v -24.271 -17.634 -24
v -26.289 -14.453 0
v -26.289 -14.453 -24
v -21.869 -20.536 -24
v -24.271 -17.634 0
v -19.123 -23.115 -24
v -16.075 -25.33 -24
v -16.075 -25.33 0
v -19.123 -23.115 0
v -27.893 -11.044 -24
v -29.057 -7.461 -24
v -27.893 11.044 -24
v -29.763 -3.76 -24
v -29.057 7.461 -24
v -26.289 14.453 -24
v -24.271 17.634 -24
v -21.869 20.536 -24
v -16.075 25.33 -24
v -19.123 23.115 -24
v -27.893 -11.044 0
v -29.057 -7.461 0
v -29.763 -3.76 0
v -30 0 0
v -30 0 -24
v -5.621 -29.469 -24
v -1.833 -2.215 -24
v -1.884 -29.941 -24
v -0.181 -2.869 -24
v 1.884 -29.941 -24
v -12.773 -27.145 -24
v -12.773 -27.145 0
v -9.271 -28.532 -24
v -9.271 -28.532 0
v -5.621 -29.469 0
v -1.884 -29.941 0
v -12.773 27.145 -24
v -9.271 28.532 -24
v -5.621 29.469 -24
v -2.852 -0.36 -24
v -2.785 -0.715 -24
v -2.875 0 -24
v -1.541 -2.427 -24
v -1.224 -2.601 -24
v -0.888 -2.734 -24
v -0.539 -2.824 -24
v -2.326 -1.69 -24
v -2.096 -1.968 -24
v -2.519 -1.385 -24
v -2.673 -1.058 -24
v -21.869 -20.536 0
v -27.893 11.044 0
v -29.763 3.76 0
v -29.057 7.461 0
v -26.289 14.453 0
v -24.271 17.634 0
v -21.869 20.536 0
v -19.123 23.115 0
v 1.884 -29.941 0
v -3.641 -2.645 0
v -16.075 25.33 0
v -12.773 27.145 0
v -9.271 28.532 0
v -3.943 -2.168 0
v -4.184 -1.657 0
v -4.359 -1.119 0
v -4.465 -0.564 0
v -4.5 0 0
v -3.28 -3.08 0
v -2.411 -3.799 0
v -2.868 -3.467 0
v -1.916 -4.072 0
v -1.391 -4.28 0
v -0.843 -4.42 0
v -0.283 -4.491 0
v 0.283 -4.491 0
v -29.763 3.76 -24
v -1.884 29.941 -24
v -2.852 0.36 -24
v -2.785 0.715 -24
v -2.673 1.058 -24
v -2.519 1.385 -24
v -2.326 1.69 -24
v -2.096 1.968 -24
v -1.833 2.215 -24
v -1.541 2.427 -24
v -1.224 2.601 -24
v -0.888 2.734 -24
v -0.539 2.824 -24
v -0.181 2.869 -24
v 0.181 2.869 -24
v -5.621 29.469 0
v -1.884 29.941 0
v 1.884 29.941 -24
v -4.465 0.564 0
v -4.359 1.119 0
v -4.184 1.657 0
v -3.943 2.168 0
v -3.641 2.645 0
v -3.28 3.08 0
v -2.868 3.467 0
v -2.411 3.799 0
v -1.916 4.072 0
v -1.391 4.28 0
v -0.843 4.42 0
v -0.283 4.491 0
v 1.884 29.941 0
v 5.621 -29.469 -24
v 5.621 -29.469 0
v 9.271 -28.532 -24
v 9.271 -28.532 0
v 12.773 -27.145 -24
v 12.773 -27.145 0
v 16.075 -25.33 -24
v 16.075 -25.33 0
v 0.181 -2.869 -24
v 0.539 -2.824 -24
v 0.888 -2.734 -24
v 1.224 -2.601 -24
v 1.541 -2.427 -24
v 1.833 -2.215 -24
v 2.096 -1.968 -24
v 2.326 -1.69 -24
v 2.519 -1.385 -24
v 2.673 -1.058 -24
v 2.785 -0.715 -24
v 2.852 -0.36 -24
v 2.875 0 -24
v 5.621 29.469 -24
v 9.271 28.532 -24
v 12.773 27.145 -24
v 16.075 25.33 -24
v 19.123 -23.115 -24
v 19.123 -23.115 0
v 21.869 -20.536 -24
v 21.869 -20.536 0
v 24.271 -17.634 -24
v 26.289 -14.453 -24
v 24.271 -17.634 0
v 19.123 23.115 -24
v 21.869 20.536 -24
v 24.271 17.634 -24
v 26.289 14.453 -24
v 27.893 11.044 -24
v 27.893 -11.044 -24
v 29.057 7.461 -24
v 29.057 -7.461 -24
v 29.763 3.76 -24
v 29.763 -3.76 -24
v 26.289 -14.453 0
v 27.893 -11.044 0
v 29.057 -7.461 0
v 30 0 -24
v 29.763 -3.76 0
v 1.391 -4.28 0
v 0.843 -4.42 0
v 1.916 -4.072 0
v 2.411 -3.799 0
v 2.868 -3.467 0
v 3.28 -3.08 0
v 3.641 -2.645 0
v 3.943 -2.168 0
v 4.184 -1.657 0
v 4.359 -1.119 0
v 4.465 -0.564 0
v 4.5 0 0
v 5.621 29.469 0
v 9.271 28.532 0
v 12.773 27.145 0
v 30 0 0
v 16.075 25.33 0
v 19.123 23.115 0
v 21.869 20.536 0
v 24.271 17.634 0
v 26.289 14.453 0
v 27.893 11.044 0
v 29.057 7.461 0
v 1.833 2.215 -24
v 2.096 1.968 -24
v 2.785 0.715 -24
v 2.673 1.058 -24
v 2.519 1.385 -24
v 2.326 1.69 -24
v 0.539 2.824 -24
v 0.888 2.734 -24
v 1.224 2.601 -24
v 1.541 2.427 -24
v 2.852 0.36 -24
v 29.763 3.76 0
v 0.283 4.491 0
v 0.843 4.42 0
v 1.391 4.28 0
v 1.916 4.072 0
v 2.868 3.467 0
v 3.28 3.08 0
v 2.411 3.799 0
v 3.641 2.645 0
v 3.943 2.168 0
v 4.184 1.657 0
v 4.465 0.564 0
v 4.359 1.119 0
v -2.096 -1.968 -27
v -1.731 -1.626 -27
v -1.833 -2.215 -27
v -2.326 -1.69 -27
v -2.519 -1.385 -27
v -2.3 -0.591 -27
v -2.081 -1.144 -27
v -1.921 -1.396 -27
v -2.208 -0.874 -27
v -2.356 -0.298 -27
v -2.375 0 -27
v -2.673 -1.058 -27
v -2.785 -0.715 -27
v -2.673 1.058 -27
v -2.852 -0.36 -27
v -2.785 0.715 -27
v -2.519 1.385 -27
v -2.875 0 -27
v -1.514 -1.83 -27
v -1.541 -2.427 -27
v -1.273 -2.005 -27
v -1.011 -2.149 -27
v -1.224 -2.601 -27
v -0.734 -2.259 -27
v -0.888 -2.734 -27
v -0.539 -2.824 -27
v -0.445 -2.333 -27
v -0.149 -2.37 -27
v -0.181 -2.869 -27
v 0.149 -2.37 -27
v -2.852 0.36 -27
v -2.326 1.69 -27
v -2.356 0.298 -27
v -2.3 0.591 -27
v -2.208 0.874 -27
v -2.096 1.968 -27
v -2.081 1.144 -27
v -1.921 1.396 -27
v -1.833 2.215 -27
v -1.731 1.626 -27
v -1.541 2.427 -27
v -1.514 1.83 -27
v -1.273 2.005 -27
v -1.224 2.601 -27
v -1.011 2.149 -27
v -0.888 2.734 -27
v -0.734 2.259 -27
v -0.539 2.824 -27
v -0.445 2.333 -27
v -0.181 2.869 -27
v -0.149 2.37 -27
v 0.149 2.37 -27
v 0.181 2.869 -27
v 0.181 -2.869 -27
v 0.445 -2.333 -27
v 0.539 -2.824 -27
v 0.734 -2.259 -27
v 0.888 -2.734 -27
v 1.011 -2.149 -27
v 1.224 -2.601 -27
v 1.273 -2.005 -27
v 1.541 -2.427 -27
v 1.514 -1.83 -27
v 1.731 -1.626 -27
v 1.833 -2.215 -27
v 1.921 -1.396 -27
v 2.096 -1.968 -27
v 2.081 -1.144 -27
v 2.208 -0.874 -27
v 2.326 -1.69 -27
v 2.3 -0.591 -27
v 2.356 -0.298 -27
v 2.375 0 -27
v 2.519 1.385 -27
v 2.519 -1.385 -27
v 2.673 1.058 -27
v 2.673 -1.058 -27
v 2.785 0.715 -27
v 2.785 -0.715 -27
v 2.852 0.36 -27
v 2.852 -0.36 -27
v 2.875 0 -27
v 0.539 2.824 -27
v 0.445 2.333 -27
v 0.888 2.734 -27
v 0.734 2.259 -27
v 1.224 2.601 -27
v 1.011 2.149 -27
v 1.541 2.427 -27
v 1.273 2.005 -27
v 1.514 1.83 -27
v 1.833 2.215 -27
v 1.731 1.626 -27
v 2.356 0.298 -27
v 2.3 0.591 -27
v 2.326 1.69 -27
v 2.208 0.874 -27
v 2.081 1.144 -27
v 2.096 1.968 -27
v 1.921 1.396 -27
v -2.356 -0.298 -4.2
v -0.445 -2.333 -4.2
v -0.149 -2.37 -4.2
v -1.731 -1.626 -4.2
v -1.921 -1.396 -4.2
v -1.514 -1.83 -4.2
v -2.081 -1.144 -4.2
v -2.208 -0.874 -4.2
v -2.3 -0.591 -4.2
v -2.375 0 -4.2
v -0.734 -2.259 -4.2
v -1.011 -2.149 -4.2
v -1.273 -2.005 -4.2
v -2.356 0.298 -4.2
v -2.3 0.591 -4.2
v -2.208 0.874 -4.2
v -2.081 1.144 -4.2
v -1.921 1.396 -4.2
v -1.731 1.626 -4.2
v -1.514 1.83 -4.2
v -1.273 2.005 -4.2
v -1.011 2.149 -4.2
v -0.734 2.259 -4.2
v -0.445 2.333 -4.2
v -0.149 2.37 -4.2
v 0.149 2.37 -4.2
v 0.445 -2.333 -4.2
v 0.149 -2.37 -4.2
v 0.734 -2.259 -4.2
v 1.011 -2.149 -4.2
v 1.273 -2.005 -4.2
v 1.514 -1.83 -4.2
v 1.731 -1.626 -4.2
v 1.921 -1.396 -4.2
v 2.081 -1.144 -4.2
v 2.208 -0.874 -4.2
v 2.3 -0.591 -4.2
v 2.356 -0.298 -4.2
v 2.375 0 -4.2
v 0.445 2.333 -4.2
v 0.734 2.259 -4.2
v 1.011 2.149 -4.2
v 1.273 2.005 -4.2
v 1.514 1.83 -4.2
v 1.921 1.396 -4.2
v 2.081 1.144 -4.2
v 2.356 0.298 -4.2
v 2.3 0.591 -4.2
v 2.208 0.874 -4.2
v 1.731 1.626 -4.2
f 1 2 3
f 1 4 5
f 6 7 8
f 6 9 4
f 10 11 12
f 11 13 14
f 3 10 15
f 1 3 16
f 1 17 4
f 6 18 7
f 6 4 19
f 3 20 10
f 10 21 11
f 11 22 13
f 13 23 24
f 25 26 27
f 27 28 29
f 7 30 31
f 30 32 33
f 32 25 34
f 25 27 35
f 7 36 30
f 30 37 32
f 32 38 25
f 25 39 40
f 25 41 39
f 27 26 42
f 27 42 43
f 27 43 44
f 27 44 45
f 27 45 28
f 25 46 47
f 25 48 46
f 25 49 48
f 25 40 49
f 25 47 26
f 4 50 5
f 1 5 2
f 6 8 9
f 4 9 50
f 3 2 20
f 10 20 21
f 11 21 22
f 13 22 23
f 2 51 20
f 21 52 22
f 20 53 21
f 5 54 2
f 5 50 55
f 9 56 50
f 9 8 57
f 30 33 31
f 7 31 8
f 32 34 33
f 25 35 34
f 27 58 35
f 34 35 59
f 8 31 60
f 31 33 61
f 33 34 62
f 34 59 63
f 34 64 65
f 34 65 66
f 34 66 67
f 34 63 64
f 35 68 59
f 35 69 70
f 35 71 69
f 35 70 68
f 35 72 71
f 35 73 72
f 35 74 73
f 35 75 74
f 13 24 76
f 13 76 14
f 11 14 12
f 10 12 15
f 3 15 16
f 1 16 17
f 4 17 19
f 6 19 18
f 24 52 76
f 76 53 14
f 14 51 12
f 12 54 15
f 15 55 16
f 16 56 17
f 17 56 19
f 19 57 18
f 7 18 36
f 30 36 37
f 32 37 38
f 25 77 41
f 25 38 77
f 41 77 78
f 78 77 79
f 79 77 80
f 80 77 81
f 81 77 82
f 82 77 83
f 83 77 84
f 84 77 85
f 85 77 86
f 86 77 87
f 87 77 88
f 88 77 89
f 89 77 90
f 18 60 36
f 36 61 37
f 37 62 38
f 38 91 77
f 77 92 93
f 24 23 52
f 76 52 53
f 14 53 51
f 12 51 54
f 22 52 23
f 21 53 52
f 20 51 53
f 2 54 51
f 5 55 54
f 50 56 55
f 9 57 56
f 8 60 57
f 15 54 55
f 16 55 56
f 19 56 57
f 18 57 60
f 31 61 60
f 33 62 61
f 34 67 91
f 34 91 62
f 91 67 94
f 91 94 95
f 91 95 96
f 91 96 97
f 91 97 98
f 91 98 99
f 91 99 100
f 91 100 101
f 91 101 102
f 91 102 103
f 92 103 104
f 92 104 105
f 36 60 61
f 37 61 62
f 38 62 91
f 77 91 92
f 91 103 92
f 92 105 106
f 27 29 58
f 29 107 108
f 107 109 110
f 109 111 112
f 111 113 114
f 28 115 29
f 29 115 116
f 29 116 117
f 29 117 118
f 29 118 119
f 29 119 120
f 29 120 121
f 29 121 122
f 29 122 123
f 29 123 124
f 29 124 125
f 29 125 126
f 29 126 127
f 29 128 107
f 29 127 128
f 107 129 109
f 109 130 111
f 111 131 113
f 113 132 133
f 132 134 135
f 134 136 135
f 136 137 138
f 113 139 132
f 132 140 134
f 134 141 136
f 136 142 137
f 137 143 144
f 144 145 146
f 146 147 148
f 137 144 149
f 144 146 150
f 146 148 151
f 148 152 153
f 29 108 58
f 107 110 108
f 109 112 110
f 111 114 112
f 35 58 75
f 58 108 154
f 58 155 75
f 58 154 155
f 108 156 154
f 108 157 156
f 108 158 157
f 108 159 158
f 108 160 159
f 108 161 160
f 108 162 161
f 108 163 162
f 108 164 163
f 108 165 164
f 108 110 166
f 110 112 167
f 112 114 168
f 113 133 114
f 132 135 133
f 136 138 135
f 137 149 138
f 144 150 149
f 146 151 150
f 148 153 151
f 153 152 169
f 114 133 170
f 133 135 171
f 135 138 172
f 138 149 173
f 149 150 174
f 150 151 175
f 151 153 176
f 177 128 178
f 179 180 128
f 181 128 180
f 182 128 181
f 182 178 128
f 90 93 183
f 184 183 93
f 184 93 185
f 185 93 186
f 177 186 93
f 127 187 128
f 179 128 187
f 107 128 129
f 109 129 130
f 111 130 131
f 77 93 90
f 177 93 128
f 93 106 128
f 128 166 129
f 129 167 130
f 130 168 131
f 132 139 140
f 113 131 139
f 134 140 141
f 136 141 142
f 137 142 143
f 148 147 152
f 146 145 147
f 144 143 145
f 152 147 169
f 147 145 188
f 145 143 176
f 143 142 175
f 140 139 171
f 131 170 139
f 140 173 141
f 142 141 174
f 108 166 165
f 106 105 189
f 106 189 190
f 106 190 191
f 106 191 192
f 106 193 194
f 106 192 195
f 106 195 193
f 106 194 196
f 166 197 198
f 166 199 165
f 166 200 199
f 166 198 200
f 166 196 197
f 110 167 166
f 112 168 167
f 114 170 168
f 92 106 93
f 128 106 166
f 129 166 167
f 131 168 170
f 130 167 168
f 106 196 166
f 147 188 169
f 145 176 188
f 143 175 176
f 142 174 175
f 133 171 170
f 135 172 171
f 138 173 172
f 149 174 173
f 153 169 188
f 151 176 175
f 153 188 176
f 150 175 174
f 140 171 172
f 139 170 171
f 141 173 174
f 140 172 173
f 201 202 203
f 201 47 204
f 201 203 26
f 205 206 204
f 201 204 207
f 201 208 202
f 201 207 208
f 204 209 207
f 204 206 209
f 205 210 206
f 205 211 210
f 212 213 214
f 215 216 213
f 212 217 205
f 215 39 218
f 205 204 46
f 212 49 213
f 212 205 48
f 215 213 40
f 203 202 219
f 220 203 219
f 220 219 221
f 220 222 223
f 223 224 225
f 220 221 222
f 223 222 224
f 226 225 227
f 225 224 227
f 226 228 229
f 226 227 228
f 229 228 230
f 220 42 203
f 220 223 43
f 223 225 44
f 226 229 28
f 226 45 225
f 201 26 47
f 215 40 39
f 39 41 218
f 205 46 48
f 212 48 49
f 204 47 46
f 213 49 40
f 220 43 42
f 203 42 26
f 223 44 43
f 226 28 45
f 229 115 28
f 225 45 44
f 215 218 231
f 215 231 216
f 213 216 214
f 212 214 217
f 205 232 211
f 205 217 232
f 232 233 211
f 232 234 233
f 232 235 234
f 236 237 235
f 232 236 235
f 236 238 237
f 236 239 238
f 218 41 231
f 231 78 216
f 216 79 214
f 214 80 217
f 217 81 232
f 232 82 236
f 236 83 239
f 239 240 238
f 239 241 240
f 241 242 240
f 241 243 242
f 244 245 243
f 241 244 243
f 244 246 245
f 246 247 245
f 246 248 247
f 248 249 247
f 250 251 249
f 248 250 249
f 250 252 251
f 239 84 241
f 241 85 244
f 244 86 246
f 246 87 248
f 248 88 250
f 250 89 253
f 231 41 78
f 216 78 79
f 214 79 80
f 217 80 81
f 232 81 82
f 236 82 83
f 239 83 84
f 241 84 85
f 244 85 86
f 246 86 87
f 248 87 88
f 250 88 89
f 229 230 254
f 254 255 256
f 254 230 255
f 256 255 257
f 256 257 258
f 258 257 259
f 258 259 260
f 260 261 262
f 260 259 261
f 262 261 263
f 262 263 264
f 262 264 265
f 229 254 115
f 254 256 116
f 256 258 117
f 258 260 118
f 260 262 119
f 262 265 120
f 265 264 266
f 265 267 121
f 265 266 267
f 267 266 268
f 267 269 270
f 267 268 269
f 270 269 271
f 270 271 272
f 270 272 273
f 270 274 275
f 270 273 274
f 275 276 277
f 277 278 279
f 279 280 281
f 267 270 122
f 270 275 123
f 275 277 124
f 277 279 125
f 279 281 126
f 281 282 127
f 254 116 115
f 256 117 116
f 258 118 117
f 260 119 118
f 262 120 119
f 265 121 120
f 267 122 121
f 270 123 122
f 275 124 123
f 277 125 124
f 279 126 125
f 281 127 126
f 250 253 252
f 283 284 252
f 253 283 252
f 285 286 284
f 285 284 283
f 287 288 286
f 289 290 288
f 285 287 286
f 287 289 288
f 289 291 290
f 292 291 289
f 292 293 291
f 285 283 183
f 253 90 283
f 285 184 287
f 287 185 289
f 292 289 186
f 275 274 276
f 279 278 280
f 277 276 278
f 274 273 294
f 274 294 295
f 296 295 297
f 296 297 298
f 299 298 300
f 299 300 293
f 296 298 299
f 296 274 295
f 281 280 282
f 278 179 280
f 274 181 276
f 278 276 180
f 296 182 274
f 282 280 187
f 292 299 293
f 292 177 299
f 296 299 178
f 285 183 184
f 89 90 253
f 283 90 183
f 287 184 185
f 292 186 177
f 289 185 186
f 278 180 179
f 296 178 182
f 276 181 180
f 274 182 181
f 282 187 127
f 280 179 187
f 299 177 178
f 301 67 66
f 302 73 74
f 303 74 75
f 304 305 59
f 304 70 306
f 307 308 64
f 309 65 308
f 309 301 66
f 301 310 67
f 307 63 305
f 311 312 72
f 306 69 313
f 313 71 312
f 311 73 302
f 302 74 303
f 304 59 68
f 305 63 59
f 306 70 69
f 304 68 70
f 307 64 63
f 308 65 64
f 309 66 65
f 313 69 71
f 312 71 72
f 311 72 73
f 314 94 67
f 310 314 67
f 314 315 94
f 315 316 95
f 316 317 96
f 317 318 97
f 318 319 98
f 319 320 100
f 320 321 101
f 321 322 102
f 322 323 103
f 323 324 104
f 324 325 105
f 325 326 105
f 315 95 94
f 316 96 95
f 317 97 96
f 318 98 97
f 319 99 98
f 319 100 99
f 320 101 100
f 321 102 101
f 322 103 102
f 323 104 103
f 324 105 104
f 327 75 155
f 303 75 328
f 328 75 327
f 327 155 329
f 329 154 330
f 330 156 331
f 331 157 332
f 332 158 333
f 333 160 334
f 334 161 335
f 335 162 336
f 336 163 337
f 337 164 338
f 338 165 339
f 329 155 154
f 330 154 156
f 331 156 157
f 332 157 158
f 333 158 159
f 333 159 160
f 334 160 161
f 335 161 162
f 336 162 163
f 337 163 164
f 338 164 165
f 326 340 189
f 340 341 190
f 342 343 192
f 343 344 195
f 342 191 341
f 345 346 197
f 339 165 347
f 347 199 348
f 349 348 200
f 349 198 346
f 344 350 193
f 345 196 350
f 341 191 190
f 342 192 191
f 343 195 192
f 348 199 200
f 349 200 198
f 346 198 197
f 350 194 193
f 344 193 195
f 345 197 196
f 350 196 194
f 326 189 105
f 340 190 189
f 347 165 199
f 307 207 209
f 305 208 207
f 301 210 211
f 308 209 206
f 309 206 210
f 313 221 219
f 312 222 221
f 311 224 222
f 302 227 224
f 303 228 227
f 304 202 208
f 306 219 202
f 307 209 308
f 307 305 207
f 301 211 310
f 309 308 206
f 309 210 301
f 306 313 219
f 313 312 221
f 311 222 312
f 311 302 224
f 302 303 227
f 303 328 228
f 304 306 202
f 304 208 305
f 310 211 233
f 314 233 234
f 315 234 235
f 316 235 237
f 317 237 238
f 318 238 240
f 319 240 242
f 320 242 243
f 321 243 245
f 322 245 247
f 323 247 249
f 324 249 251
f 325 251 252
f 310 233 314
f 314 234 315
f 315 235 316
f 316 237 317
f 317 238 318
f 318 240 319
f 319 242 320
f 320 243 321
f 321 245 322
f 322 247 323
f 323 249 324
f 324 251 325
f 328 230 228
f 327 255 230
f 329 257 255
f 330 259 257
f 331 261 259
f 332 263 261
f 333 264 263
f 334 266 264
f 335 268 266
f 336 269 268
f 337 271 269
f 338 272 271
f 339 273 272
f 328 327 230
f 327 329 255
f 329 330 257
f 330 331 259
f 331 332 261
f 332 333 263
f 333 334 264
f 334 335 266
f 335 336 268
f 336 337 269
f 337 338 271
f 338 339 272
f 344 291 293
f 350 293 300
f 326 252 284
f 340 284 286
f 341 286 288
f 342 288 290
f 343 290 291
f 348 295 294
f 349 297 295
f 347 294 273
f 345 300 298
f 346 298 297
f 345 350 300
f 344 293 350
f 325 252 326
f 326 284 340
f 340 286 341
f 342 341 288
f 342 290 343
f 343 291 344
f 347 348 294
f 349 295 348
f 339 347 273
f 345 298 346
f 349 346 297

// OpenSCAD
$fn = 50;

difference() {
	union() {
		translate(v = [0, 0, -24.0]) {
			cylinder(h = 24, r = 30.0);
		}
		#translate(v = [0, 0, -27.0]) {
			cylinder(h = 27, r = 2.875);
		}
	}
	union() {
		translate(v = [0, 0, 0]) {
			rotate(a = [0, 0, 0]) {
				difference() {
					union() {
						translate(v = [0, 0, -27.0]) {
							cylinder(h = 27, r = 2.25);
						}
						translate(v = [0, 0, -4.2]) {
							cylinder(h = 4.2, r1 = 2.375, r2 = 4.5);
						}
						translate(v = [0, 0, -27.0]) {
							cylinder(h = 27, r = 2.375);
						}
						translate(v = [0, 0, -27.0]) {
							cylinder(h = 27, r = 2.25);
						}
					}
					union();
				}
			}
		}
	}
}
